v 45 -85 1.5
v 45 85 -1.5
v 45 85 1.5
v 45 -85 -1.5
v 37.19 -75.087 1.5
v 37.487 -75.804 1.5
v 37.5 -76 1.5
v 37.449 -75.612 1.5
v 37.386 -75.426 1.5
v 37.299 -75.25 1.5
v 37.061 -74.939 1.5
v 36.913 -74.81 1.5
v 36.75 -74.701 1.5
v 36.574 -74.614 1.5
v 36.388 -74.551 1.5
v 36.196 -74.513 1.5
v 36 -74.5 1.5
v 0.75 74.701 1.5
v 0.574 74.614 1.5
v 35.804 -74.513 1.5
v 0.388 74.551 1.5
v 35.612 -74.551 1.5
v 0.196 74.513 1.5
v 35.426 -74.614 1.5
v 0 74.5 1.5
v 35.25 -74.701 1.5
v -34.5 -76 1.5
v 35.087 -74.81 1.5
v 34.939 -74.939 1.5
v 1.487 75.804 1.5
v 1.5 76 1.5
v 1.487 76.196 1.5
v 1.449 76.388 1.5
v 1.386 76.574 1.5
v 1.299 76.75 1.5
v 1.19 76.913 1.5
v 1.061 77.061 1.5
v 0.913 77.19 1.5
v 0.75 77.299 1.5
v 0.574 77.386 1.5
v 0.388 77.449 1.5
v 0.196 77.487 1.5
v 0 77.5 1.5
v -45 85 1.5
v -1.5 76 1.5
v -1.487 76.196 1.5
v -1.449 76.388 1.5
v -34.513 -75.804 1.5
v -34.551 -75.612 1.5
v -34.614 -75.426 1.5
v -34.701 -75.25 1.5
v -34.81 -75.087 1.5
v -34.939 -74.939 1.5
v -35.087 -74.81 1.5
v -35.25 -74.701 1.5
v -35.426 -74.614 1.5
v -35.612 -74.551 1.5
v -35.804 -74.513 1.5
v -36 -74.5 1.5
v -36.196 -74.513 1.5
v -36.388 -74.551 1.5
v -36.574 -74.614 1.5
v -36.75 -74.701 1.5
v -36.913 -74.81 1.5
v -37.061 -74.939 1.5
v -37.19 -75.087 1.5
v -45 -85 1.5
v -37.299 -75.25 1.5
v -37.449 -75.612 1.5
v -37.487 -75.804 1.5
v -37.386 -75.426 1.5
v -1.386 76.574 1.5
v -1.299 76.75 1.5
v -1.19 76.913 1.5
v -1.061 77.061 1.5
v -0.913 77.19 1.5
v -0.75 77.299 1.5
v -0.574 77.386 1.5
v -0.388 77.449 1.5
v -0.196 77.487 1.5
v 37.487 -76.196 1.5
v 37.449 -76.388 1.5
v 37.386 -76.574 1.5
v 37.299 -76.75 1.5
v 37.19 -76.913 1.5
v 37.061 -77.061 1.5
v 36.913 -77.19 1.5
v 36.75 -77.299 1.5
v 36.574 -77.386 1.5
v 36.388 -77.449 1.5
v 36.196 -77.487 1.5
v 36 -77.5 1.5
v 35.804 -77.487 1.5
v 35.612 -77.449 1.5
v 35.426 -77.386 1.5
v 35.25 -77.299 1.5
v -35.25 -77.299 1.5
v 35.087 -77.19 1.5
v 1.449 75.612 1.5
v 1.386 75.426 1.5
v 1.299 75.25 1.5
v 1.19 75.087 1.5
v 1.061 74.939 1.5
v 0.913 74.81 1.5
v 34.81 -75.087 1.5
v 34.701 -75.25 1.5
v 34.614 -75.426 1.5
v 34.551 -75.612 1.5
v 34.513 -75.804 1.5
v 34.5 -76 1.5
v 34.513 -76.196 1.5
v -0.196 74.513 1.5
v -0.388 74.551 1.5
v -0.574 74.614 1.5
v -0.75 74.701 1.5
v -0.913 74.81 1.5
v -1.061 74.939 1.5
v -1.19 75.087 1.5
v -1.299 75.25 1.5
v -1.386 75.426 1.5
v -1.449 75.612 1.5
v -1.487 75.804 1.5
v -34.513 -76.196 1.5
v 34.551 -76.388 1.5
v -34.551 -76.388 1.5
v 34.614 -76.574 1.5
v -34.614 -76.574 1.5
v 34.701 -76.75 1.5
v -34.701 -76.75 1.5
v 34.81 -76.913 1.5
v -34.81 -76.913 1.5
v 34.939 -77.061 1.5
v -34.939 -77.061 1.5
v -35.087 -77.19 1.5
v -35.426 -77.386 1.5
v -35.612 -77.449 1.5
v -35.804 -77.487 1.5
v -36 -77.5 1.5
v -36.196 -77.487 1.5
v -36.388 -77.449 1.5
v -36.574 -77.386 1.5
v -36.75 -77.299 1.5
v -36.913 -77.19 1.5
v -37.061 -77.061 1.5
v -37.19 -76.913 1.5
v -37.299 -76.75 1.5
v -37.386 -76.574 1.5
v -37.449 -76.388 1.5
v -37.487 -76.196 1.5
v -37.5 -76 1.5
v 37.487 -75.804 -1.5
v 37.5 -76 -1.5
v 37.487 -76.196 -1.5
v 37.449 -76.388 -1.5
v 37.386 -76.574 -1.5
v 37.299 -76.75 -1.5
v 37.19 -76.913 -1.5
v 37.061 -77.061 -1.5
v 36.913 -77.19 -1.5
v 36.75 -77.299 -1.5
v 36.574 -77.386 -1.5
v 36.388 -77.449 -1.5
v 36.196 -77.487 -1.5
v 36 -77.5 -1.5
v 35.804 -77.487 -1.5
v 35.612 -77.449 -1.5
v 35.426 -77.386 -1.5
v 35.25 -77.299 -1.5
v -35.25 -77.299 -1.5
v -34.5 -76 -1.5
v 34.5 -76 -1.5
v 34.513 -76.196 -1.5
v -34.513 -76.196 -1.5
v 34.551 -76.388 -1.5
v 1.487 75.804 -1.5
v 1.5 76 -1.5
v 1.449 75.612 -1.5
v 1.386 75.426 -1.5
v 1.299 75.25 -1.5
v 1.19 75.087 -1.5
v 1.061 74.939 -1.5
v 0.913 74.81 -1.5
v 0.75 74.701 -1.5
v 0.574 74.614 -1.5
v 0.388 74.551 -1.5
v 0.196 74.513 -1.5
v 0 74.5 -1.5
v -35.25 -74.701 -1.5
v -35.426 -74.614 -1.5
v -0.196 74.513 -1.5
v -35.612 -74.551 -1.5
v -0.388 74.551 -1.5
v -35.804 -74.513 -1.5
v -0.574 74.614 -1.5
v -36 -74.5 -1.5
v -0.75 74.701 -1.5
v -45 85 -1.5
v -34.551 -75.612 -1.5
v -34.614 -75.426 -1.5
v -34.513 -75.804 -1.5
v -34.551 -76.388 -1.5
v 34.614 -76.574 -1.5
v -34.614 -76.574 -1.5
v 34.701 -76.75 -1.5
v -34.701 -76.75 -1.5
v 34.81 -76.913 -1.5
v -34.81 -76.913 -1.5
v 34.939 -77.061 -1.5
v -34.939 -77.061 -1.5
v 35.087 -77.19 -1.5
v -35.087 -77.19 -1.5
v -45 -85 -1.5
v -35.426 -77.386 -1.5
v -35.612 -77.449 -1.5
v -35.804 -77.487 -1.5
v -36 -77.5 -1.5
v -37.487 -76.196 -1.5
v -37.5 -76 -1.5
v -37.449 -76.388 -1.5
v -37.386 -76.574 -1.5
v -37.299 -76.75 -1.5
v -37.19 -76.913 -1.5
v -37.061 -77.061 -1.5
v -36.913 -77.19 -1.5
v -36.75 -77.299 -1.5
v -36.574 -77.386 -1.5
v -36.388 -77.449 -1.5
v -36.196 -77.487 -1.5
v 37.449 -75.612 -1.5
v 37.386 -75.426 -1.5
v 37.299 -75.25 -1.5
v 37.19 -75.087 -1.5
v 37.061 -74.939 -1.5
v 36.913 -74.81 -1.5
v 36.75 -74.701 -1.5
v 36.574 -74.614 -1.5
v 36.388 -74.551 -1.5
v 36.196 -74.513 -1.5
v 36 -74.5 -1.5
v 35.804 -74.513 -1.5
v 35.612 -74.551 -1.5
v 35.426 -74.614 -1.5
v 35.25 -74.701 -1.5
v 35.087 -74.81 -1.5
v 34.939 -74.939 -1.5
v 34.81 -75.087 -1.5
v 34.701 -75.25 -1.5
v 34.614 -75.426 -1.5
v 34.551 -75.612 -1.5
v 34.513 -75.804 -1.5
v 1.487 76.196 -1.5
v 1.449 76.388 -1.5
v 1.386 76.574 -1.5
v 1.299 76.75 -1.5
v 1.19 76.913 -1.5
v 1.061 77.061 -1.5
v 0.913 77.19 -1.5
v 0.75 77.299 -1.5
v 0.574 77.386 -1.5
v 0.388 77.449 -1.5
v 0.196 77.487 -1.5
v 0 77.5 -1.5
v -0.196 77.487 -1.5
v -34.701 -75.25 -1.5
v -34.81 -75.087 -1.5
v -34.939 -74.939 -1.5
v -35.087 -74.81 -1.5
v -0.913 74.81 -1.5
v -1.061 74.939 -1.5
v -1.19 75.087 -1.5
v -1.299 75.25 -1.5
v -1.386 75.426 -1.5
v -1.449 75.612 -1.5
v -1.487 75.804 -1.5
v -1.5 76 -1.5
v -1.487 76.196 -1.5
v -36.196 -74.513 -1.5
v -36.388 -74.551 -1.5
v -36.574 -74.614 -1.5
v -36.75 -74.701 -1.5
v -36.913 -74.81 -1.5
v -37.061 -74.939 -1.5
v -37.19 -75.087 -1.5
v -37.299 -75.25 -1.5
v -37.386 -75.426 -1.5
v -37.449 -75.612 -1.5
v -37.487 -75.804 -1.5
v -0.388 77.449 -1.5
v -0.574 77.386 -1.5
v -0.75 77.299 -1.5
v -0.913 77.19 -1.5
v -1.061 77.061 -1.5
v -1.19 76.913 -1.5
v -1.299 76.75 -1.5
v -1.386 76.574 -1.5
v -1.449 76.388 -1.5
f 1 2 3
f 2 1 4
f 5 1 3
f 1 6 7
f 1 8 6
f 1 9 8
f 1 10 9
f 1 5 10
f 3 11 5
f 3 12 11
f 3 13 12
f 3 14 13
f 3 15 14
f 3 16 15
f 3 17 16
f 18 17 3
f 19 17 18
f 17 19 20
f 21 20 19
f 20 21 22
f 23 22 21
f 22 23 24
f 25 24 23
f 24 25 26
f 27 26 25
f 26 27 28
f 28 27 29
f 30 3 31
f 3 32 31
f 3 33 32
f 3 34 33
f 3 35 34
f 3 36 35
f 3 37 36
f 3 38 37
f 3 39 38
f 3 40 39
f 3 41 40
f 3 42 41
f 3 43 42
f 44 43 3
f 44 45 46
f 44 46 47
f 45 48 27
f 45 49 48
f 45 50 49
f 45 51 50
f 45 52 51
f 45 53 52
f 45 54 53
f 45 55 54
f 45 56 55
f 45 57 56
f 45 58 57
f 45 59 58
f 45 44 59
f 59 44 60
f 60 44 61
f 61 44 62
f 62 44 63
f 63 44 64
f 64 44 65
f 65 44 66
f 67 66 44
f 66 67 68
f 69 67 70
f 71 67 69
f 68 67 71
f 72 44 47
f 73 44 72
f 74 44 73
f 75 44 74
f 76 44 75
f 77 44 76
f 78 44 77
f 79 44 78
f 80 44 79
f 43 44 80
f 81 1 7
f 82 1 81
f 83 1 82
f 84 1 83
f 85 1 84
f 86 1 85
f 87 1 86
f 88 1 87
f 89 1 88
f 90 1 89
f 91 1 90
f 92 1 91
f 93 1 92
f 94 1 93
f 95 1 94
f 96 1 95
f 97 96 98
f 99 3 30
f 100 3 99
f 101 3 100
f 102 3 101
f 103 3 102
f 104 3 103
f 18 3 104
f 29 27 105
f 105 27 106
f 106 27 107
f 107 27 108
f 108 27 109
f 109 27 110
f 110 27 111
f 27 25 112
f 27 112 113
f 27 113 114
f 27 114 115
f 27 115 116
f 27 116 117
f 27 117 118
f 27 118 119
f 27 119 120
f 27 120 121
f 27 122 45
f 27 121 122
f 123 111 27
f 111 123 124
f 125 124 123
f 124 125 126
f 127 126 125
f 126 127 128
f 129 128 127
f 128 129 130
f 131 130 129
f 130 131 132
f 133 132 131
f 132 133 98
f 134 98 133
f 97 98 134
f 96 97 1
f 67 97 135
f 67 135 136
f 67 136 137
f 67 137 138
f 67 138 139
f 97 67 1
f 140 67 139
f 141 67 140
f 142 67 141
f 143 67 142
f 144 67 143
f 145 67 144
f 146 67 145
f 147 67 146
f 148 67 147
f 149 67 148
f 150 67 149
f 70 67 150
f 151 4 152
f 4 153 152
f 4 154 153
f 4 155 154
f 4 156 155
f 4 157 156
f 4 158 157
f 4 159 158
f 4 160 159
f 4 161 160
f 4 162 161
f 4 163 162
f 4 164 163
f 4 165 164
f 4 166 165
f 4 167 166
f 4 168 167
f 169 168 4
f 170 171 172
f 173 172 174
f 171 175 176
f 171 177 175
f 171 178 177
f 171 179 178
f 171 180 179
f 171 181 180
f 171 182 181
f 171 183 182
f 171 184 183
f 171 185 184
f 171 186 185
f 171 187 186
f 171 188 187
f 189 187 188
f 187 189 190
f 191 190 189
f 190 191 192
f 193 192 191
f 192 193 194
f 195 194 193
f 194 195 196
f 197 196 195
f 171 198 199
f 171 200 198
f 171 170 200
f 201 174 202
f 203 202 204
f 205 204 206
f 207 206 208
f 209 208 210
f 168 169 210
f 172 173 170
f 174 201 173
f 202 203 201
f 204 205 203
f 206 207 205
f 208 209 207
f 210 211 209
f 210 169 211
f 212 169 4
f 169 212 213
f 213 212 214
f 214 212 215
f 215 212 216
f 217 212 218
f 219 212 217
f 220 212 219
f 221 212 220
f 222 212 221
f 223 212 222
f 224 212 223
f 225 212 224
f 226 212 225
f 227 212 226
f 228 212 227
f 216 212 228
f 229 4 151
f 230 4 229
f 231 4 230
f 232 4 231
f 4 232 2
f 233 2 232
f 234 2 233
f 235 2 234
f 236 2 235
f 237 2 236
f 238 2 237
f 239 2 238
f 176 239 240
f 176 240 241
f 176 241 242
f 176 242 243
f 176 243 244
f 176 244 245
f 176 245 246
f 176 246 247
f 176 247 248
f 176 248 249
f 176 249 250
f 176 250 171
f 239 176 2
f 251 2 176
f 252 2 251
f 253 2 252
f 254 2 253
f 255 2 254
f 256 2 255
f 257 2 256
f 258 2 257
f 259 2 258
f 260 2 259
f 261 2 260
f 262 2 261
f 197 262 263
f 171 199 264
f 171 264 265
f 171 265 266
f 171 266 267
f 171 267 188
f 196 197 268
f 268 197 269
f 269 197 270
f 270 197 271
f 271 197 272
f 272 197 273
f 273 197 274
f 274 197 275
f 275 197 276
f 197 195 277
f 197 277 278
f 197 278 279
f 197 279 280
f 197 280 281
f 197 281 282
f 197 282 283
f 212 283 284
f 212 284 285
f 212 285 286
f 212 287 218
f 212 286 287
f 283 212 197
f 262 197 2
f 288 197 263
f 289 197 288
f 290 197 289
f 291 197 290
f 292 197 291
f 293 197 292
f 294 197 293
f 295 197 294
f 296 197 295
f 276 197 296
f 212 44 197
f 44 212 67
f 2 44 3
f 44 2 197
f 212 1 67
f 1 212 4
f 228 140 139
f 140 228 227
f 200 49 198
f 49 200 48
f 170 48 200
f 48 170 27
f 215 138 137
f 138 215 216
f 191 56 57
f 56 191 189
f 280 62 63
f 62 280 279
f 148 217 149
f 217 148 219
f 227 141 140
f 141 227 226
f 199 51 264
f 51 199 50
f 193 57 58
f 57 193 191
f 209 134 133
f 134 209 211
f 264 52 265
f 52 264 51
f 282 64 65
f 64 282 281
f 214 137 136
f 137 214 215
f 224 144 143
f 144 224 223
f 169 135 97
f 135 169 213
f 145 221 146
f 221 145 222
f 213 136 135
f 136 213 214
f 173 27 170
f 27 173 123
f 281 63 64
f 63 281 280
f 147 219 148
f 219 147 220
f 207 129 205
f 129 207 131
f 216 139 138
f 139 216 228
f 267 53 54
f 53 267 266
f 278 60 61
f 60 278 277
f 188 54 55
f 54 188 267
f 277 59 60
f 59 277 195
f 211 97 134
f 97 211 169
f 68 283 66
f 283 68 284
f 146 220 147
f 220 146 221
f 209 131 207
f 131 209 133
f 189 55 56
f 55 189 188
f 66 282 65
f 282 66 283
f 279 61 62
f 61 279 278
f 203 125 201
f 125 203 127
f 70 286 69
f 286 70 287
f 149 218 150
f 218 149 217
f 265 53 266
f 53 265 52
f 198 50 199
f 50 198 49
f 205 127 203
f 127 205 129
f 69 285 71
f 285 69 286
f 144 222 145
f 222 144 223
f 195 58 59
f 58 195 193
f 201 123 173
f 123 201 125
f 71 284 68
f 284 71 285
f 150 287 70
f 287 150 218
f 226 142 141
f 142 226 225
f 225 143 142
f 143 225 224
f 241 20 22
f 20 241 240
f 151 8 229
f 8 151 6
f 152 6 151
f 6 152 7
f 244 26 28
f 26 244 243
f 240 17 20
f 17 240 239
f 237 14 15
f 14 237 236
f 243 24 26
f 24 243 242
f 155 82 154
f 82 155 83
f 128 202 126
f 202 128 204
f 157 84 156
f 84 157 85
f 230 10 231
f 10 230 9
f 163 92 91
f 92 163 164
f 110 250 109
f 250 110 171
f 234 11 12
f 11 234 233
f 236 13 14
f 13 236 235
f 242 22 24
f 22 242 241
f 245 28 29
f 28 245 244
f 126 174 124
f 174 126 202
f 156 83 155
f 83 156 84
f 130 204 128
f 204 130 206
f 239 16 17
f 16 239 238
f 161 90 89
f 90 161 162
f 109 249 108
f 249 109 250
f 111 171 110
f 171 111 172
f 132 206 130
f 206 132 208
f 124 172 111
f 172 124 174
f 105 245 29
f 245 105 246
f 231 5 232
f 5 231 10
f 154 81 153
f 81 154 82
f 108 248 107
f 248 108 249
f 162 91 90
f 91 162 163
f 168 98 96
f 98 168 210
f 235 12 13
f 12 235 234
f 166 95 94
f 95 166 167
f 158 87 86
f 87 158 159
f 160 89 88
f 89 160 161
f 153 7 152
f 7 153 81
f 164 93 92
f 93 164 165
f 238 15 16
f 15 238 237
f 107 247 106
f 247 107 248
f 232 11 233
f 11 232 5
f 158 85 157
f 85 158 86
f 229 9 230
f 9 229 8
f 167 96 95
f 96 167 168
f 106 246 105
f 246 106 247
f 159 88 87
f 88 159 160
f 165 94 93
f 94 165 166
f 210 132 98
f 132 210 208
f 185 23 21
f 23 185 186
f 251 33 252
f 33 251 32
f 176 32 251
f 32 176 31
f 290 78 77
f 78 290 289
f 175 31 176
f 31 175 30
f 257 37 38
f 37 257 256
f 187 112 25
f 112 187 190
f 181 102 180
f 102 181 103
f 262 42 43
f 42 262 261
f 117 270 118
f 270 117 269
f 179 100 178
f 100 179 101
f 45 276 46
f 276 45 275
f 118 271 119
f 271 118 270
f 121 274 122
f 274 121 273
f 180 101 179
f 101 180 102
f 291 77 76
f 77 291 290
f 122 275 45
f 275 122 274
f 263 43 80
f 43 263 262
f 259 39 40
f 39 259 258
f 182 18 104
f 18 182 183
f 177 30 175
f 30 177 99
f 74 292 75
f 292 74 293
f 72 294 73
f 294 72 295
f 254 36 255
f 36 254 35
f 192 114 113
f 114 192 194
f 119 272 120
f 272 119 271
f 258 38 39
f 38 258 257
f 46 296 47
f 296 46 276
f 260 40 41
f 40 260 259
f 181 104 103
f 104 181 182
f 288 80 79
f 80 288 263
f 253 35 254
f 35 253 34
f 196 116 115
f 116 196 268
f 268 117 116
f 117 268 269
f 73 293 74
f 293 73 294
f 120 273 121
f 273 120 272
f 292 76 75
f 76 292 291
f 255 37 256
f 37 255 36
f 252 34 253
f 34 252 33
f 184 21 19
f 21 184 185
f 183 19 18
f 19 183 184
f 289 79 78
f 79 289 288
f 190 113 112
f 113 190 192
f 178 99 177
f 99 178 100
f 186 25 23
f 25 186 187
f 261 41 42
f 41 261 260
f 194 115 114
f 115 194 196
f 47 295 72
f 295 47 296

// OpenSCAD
// ========================================
// a 90 x 170 x 3 mm plate with three 3 mm holes
// NeuroCAD canonical IR; dimensions are millimetres
// ========================================
$fn = 48;

difference() {
  cube(size=[90, 170, 3], center=true);
  translate([-36, -76, 0]) {
    cylinder(r=1.5, h=5, center=true);
  }
  translate([36, -76, 0]) {
    cylinder(r=1.5, h=5, center=true);
  }
  translate([0, 76, 0]) {
    cylinder(r=1.5, h=5, center=true);
  }
}
